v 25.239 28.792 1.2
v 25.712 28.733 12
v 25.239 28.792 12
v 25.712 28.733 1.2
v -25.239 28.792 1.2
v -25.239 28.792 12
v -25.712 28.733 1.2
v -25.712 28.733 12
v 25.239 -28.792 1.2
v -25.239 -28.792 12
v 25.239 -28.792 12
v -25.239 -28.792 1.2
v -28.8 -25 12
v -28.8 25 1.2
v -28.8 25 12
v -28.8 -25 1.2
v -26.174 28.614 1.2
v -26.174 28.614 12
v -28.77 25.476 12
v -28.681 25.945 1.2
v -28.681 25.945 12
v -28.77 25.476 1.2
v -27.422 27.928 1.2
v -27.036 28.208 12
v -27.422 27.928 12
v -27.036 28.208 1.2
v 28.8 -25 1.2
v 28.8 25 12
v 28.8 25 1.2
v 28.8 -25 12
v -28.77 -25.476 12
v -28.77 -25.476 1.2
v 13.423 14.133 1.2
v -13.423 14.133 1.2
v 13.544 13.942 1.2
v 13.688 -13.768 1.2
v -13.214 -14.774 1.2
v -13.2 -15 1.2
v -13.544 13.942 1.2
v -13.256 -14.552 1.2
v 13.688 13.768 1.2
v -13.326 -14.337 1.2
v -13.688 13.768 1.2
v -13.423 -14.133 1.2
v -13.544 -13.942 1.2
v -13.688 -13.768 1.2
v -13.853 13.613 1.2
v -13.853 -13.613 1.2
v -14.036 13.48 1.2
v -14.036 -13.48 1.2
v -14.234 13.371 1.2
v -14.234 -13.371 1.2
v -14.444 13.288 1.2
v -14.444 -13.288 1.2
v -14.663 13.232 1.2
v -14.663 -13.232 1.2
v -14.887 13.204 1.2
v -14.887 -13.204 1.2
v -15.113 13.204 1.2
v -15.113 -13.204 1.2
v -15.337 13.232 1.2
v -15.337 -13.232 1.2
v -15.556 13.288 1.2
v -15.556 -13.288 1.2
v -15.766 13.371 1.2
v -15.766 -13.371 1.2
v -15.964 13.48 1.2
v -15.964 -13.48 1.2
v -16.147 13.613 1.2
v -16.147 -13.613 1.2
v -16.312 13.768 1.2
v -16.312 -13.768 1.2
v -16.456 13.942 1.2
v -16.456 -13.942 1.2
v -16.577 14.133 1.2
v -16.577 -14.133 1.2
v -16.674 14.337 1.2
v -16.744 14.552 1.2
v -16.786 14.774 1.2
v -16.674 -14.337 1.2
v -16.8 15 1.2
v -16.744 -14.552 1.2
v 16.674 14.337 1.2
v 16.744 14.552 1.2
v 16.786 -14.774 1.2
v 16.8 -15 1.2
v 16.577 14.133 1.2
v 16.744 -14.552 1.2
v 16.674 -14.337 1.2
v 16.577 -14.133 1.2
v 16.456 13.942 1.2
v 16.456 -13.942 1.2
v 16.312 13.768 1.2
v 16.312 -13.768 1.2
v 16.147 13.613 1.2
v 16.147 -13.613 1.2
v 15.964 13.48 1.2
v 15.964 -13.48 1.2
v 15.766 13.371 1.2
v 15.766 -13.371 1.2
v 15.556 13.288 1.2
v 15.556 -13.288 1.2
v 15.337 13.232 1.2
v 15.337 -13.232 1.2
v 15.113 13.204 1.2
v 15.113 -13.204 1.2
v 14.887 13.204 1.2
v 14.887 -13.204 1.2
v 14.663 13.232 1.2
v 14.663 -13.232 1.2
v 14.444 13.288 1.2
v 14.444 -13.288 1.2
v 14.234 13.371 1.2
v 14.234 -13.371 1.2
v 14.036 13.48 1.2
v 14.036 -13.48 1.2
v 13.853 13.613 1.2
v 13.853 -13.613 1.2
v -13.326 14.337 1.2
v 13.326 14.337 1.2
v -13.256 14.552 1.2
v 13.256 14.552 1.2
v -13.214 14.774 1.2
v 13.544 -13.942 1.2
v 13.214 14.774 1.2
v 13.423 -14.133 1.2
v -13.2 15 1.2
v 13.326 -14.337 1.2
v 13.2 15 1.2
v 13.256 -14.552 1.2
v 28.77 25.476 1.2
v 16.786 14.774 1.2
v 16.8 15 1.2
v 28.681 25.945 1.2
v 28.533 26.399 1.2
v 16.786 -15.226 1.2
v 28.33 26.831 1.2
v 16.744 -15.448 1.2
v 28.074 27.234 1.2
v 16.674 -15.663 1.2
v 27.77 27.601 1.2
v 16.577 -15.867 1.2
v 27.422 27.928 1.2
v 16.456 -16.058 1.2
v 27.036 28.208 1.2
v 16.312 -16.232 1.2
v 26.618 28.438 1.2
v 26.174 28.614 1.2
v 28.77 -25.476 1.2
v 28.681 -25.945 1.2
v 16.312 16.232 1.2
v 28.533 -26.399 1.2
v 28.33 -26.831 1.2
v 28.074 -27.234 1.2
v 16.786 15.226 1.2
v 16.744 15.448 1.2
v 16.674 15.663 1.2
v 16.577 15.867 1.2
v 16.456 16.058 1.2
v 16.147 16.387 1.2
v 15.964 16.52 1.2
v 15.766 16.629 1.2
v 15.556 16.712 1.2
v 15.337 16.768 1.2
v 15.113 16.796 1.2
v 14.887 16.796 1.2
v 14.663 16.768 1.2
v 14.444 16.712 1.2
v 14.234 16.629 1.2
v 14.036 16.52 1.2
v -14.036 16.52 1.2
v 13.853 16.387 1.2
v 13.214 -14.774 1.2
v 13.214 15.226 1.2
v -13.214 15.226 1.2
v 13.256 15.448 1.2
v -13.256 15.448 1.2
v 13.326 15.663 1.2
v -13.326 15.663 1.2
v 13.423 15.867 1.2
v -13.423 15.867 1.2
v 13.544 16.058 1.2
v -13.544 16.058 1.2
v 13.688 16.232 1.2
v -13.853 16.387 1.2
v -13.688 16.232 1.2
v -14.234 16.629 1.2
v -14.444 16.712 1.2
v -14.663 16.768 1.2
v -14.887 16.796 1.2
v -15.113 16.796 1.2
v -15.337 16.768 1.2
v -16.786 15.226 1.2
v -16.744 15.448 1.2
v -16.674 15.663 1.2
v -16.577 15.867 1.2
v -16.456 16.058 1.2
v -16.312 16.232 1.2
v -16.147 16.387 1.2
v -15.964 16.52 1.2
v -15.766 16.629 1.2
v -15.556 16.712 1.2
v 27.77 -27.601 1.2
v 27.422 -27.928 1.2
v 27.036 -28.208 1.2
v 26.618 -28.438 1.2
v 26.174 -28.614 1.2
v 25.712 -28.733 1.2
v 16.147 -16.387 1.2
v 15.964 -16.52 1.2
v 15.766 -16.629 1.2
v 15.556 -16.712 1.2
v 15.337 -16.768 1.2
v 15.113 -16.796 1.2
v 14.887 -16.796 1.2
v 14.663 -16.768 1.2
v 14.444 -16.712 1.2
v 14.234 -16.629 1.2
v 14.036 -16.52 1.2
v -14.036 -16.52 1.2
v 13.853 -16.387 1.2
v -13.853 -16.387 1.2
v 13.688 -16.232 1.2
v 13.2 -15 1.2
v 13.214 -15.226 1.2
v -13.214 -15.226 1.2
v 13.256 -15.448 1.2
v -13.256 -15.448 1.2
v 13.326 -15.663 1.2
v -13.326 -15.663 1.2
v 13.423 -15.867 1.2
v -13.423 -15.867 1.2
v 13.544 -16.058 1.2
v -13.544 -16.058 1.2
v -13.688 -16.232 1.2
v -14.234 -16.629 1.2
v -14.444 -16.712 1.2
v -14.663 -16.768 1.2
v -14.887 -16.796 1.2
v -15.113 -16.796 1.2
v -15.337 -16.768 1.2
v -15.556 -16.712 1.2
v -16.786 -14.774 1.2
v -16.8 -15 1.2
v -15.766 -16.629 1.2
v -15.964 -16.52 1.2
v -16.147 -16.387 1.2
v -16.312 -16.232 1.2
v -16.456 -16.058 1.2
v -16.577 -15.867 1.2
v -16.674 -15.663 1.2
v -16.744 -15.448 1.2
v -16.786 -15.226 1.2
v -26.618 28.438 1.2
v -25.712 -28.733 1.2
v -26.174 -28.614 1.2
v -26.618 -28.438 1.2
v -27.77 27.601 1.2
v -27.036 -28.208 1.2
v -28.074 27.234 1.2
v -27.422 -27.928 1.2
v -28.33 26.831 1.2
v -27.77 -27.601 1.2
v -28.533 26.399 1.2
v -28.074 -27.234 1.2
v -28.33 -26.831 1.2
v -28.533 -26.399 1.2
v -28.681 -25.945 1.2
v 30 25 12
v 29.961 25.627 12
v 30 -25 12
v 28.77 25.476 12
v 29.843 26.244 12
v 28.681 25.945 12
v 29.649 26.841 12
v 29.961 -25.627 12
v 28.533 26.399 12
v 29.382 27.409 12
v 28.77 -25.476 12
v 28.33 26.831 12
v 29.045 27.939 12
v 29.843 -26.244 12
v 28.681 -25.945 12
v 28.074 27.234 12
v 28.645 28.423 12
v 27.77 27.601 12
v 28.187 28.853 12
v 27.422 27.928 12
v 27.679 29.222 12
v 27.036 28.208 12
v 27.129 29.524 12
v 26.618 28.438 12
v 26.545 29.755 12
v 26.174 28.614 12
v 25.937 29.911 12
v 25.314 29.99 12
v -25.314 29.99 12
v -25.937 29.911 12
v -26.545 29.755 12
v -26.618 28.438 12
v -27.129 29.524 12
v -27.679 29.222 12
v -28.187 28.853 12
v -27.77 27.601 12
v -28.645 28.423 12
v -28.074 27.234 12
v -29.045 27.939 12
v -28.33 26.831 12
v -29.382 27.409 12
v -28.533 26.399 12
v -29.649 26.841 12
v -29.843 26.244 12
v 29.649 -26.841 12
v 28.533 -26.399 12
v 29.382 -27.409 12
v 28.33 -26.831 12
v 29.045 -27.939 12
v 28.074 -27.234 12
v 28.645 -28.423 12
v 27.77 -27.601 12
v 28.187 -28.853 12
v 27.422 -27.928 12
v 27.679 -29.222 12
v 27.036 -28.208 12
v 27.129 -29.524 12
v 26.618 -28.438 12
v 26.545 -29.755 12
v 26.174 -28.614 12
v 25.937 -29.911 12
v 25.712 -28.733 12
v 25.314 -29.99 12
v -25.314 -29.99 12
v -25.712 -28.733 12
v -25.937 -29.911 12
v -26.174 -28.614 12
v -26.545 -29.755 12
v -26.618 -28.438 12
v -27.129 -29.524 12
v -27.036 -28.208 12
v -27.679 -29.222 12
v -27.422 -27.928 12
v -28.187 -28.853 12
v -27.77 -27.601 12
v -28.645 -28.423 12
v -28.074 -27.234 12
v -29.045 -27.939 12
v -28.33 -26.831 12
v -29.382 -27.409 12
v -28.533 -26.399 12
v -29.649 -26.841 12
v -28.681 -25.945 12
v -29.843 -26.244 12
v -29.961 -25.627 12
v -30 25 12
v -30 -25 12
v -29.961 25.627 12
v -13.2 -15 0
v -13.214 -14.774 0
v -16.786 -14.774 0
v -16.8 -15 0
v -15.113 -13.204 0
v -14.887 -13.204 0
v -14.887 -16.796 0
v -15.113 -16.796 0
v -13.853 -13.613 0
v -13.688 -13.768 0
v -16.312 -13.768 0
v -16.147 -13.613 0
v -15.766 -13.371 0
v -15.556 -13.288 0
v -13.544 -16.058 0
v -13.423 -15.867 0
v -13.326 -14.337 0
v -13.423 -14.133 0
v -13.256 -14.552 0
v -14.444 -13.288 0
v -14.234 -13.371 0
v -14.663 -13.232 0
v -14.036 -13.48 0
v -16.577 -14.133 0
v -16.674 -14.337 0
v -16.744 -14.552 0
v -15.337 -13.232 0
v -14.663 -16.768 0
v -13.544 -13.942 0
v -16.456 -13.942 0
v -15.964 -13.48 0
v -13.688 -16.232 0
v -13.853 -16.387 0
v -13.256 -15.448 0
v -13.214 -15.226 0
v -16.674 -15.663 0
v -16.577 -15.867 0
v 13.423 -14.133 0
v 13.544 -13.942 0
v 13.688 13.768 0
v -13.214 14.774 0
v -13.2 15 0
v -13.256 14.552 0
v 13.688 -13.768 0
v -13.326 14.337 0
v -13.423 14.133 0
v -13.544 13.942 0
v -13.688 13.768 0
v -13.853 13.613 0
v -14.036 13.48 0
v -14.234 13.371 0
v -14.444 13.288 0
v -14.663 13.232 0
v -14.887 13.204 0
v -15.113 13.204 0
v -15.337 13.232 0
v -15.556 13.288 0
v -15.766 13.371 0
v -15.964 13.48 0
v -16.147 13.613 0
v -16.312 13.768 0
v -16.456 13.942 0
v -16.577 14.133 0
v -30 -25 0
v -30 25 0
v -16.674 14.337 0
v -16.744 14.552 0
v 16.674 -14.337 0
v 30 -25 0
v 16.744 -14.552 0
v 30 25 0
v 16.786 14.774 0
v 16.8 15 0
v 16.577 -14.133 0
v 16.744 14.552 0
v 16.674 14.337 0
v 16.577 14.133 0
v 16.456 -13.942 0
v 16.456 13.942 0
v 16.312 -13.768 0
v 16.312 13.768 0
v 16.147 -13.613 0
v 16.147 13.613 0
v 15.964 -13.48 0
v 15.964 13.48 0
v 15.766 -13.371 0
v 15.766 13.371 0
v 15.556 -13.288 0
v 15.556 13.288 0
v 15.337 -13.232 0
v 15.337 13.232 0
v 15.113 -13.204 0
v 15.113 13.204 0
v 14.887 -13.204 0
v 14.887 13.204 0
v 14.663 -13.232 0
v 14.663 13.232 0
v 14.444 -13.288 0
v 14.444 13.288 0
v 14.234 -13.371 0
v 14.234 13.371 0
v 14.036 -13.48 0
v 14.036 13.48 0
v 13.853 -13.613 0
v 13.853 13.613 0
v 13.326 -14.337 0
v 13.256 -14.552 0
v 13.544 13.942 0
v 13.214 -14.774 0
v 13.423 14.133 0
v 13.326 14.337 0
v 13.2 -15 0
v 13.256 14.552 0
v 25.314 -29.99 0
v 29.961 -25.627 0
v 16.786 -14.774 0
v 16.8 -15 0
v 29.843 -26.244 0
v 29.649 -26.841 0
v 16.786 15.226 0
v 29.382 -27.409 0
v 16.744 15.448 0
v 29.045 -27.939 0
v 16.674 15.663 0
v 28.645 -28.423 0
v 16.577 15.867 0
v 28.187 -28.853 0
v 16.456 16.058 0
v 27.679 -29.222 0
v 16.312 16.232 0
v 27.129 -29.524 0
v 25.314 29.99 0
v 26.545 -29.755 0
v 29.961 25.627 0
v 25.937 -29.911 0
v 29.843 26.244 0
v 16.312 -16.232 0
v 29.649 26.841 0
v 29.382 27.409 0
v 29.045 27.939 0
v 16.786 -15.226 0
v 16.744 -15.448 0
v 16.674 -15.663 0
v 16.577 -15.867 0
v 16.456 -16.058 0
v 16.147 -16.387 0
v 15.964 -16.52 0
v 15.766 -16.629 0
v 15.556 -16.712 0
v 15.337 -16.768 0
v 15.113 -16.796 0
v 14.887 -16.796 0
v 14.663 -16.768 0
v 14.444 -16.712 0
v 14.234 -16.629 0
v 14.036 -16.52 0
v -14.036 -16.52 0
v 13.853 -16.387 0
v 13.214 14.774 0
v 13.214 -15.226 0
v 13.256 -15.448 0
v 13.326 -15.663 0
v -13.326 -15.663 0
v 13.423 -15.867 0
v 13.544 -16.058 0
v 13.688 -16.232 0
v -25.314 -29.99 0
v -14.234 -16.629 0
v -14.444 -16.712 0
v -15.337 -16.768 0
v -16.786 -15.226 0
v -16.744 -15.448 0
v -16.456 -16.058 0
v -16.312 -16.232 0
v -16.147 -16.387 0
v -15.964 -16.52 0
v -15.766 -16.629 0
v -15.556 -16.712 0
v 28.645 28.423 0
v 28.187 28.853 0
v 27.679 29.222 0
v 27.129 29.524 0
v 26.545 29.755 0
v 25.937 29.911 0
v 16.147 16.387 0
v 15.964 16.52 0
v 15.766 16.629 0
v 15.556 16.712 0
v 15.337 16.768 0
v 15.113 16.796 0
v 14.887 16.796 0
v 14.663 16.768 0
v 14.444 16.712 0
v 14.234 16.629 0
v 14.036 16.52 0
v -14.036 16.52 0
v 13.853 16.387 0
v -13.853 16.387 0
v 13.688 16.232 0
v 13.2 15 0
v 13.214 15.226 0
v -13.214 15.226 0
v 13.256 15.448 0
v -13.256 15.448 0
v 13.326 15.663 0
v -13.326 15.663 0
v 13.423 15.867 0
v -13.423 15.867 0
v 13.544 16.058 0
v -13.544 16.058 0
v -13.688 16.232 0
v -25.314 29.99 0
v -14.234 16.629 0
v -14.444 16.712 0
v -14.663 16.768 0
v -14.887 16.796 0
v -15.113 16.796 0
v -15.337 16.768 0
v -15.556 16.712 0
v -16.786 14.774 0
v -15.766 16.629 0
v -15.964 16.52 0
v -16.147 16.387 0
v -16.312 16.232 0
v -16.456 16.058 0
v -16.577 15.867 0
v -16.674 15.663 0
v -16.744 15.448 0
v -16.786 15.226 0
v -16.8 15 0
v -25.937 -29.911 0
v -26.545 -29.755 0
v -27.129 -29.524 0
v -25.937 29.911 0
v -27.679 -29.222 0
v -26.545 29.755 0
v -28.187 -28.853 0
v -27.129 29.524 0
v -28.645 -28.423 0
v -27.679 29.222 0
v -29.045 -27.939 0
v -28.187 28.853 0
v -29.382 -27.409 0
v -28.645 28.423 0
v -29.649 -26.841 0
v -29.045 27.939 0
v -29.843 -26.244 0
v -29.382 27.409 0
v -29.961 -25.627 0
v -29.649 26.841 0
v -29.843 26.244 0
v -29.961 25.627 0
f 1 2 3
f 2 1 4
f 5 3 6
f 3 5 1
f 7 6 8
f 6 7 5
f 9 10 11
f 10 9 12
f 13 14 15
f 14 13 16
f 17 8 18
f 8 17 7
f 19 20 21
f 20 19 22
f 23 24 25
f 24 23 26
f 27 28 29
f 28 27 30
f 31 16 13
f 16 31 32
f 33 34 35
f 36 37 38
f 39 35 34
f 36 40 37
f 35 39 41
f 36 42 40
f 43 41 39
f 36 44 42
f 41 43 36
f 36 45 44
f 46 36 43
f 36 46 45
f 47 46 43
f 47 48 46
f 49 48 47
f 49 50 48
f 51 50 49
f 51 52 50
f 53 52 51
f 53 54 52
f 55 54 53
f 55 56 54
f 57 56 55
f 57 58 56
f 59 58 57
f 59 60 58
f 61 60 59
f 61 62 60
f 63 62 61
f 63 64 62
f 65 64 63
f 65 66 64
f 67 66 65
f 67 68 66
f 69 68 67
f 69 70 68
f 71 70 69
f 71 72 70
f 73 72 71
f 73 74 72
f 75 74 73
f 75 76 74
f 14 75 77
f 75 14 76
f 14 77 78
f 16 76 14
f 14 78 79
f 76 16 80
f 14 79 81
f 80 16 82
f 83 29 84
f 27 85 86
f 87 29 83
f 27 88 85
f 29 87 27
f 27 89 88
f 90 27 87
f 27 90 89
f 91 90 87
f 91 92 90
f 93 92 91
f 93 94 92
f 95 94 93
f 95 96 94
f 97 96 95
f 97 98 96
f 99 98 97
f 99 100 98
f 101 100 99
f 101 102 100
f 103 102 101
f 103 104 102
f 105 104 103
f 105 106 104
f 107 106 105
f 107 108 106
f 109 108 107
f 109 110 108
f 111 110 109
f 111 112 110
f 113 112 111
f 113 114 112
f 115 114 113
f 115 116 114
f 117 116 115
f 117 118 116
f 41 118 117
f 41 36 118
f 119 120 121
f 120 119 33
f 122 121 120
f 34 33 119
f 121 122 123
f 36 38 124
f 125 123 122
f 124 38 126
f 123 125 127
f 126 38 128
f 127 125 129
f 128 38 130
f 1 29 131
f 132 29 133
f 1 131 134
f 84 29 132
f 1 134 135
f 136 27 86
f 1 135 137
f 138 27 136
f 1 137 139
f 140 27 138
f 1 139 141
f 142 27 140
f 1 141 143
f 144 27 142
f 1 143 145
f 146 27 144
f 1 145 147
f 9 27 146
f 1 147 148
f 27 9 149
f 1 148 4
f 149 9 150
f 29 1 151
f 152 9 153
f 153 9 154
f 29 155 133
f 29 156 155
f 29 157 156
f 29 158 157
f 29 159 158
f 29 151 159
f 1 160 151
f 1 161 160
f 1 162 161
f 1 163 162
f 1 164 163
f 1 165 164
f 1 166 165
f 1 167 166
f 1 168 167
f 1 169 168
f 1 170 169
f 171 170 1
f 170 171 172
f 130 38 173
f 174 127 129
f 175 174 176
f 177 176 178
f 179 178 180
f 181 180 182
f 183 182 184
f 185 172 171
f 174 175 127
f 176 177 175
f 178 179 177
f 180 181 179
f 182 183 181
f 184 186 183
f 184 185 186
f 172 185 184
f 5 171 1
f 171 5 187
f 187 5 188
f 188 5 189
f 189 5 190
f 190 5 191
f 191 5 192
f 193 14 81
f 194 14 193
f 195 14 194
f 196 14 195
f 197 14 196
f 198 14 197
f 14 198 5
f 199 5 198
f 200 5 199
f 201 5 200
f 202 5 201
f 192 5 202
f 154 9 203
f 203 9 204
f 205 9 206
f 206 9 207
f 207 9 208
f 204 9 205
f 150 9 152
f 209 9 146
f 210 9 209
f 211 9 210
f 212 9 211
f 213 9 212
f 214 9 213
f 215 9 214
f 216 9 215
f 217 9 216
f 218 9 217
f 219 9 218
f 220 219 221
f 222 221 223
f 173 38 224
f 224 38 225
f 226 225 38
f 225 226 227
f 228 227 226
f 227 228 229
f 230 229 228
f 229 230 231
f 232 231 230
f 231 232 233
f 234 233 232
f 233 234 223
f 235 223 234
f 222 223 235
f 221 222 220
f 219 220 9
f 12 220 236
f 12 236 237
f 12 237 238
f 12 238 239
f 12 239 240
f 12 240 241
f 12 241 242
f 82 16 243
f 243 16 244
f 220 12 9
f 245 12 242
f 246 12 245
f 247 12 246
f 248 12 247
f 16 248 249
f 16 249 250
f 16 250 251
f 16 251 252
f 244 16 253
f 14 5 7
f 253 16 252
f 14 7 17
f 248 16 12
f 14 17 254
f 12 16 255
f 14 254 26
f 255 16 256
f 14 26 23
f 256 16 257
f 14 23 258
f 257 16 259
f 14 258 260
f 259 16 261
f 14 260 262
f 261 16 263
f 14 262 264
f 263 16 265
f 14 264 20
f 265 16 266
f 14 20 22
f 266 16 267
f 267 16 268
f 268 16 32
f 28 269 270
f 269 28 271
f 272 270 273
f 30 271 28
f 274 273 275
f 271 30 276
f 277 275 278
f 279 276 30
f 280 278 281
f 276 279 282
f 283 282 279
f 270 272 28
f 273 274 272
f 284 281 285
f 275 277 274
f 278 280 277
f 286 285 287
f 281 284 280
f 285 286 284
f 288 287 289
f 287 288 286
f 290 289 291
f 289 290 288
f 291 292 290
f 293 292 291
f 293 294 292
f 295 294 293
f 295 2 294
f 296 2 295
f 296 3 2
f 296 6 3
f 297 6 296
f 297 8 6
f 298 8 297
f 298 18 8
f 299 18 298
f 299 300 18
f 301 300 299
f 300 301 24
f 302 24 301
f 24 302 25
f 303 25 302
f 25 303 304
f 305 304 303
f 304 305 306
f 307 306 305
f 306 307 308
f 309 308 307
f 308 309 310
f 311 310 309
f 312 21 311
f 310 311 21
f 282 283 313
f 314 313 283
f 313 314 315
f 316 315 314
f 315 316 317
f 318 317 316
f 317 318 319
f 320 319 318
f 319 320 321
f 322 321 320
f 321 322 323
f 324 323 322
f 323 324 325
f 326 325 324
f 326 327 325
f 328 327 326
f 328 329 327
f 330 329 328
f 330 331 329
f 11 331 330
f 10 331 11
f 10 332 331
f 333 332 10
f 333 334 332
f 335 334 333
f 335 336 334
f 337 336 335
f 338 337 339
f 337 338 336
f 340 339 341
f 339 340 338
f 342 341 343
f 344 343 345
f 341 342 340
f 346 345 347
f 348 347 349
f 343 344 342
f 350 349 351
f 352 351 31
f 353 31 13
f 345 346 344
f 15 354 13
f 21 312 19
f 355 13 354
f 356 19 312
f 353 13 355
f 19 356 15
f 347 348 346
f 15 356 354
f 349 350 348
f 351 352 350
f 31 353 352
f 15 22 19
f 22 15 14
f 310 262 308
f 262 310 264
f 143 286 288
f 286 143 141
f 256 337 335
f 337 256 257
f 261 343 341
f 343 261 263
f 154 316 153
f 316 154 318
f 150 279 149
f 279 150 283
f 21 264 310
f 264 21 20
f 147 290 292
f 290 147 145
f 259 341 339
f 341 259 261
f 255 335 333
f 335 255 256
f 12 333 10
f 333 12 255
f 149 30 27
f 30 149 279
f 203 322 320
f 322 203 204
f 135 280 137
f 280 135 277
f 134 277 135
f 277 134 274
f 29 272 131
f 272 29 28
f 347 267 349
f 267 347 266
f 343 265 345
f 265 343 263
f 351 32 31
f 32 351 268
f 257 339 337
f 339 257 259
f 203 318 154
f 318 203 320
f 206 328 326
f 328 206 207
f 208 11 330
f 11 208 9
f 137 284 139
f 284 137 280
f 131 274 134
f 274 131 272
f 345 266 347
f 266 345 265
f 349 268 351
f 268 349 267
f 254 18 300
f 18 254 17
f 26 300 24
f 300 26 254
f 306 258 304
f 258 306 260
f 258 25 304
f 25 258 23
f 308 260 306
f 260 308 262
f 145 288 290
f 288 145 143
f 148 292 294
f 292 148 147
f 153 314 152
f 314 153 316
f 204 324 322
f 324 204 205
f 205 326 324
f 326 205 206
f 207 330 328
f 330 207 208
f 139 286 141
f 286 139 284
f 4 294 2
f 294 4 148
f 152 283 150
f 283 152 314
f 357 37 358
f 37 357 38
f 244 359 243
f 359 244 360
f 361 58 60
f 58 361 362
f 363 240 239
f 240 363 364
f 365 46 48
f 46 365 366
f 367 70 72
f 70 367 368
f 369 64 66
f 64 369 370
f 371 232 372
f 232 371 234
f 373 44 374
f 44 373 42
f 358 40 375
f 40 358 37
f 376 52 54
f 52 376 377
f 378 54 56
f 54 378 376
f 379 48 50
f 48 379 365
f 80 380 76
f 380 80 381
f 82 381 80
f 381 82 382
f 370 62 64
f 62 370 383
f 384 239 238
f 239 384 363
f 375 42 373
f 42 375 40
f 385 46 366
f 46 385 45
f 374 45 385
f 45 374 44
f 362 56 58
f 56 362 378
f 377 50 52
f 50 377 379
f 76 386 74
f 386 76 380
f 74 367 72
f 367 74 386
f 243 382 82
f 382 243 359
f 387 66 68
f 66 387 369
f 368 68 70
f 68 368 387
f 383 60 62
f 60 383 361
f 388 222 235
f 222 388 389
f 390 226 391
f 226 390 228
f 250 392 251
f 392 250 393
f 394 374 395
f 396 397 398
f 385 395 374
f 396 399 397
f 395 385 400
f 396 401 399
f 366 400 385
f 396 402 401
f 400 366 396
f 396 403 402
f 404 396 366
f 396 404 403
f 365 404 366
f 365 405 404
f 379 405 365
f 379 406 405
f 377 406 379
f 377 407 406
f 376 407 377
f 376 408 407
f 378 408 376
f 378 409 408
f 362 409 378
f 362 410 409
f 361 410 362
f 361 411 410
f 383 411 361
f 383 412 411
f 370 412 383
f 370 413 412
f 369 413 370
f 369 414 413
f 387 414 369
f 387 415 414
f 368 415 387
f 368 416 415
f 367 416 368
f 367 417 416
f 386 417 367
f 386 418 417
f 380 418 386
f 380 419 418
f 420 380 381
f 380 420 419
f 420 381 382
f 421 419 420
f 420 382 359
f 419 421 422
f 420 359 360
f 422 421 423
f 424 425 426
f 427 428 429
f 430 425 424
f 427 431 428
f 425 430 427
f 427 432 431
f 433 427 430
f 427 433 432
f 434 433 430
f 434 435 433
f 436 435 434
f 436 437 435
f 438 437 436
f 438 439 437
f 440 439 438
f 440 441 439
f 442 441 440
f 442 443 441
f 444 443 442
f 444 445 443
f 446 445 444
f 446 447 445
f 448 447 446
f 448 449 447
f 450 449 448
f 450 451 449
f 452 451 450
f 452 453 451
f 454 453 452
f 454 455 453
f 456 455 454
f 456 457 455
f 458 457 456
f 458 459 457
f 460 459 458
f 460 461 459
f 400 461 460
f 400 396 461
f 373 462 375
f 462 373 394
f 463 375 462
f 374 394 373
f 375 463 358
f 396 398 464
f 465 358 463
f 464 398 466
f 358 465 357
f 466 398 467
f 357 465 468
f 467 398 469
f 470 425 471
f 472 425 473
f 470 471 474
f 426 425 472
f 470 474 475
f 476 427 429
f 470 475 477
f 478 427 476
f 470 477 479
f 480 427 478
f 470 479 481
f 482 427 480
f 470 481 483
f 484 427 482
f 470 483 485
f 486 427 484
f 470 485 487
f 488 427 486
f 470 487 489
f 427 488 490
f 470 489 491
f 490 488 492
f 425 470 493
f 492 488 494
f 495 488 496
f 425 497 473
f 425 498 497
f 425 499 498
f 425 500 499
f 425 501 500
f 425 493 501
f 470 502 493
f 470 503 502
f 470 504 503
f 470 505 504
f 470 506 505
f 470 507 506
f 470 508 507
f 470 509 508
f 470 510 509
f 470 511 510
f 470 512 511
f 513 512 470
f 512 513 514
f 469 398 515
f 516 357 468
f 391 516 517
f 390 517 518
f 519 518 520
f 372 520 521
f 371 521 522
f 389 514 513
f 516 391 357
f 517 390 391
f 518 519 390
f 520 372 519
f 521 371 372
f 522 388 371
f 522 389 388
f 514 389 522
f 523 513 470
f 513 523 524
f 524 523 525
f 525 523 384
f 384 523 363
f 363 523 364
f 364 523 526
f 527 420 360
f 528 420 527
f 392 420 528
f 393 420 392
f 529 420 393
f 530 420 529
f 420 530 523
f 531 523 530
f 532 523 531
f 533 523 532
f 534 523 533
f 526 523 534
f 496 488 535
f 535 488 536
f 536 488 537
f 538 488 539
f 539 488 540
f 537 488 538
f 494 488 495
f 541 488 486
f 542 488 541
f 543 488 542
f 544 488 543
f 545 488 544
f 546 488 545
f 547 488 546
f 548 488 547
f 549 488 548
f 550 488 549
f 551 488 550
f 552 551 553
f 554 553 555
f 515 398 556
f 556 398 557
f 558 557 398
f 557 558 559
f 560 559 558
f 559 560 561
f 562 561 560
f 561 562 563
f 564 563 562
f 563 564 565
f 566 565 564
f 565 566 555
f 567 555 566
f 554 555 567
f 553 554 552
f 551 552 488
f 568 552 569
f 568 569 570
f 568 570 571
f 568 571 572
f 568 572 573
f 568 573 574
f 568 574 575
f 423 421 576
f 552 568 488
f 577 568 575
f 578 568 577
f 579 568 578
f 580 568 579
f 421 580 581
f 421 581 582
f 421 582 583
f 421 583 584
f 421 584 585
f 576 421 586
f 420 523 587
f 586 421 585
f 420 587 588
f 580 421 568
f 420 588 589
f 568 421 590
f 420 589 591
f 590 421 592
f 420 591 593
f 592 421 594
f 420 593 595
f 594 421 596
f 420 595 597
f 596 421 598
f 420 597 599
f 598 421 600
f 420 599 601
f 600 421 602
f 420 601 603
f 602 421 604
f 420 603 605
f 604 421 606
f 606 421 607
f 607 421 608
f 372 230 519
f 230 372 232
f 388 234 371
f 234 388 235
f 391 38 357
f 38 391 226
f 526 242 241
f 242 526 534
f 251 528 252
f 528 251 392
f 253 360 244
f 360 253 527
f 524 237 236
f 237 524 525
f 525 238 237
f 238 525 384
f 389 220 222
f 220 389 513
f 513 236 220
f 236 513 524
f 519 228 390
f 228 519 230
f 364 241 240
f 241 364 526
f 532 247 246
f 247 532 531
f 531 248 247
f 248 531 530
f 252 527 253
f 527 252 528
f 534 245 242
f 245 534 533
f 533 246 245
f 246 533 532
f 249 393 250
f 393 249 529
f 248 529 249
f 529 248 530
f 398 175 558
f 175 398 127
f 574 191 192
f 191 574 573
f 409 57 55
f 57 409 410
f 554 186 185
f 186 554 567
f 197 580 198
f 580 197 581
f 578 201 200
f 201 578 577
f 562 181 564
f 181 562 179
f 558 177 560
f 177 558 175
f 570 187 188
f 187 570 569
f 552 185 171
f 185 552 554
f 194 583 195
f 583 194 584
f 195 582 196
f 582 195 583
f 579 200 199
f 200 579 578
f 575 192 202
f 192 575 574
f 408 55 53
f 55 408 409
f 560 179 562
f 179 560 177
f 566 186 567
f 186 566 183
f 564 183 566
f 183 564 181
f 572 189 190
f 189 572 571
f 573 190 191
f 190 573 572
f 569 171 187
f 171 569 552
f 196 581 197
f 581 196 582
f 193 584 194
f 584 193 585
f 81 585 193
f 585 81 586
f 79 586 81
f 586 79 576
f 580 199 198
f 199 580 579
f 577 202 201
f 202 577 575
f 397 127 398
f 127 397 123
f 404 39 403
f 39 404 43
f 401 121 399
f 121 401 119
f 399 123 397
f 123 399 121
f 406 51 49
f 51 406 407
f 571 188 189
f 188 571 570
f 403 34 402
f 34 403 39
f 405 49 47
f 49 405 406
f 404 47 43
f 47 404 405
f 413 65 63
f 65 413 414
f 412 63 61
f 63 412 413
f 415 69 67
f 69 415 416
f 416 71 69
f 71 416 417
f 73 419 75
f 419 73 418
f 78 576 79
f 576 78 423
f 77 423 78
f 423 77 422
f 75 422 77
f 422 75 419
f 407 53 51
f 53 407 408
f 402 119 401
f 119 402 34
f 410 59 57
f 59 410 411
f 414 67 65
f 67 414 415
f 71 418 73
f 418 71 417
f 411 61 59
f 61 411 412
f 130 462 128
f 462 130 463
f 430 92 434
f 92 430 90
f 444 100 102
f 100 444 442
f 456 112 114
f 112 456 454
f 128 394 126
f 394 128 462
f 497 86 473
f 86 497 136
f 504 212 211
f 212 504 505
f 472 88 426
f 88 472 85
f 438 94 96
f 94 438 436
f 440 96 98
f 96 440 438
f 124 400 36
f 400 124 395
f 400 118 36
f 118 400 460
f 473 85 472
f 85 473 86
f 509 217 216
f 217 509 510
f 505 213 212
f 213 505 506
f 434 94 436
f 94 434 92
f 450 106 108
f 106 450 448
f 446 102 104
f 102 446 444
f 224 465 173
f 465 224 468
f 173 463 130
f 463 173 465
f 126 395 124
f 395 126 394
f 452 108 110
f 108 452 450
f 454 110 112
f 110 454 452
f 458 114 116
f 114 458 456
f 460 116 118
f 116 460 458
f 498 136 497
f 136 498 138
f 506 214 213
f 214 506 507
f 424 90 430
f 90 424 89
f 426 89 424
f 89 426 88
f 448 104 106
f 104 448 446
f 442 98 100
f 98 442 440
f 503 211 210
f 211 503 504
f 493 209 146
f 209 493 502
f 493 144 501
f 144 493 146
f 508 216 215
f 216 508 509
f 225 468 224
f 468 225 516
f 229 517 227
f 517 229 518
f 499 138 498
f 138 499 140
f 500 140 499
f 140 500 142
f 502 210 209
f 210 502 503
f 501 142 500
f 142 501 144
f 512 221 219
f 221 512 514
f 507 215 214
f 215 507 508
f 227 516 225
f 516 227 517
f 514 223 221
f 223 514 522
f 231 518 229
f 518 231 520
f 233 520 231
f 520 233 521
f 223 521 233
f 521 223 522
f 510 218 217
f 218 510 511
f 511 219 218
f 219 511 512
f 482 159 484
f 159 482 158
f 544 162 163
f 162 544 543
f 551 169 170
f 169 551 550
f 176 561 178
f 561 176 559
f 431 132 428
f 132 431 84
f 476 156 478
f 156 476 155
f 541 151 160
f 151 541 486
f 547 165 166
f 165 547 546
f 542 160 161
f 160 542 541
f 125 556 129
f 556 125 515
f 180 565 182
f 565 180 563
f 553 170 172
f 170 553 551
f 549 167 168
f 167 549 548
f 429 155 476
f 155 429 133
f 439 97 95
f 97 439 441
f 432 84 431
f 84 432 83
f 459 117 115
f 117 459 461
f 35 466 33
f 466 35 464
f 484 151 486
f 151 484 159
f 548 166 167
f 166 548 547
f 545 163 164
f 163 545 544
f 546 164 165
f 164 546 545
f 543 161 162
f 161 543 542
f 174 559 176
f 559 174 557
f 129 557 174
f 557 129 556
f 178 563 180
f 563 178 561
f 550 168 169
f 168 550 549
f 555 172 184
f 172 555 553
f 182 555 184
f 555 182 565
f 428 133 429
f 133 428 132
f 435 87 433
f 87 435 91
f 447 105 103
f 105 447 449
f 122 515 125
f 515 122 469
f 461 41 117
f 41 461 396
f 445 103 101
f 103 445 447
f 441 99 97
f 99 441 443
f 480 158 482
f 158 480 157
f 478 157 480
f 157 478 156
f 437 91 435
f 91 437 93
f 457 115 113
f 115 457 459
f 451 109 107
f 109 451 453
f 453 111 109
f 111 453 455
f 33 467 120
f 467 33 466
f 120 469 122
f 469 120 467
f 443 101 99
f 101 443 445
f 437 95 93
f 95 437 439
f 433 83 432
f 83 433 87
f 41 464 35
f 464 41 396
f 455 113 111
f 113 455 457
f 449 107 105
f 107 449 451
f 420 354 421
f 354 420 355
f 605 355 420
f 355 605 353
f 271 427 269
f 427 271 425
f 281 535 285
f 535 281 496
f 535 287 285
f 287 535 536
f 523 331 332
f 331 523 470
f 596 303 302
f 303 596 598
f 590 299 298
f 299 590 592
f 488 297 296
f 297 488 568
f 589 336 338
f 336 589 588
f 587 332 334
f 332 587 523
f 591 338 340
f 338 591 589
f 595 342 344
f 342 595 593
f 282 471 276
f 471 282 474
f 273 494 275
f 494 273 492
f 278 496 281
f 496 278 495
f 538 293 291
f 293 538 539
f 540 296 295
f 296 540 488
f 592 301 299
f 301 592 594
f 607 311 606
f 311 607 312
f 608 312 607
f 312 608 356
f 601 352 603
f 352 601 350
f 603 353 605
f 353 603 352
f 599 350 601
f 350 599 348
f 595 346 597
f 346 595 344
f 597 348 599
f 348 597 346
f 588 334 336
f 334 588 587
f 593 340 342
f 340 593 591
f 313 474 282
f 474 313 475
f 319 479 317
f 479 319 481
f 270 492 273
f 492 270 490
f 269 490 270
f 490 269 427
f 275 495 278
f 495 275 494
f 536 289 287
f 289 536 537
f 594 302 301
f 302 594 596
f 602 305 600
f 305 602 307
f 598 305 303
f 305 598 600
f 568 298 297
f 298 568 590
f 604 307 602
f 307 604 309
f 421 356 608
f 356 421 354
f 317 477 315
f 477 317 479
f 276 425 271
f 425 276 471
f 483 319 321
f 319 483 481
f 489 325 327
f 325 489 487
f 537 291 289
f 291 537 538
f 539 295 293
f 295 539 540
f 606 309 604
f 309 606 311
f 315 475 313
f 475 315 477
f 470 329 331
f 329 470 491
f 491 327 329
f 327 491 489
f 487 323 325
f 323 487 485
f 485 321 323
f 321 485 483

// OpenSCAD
$fn = 50;


difference() {
	union() {
		hull() {
			translate(v = [-25.0000000000, 25.0000000000, 0]) {
				cylinder(h = 12, r = 5);
			}
			translate(v = [25.0000000000, 25.0000000000, 0]) {
				cylinder(h = 12, r = 5);
			}
			translate(v = [-25.0000000000, -25.0000000000, 0]) {
				cylinder(h = 12, r = 5);
			}
			translate(v = [25.0000000000, -25.0000000000, 0]) {
				cylinder(h = 12, r = 5);
			}
		}
	}
	union() {
		translate(v = [0, 0, 1.2000000000]) {
			hull() {
				translate(v = [-25.0000000000, 25.0000000000, 0]) {
					cylinder(h = 10.8000000000, r = 3.8000000000);
				}
				translate(v = [25.0000000000, 25.0000000000, 0]) {
					cylinder(h = 10.8000000000, r = 3.8000000000);
				}
				translate(v = [-25.0000000000, -25.0000000000, 0]) {
					cylinder(h = 10.8000000000, r = 3.8000000000);
				}
				translate(v = [25.0000000000, -25.0000000000, 0]) {
					cylinder(h = 10.8000000000, r = 3.8000000000);
				}
			}
		}
		#translate(v = [-15.0000000000, -15.0000000000, 0]) {
			cylinder(h = 1.2000000000, r = 1.8000000000);
		}
		#translate(v = [-15.0000000000, 15.0000000000, 0]) {
			cylinder(h = 1.2000000000, r = 1.8000000000);
		}
		#translate(v = [15.0000000000, -15.0000000000, 0]) {
			cylinder(h = 1.2000000000, r = 1.8000000000);
		}
		#translate(v = [15.0000000000, 15.0000000000, 0]) {
			cylinder(h = 1.2000000000, r = 1.8000000000);
		}
	}
}
